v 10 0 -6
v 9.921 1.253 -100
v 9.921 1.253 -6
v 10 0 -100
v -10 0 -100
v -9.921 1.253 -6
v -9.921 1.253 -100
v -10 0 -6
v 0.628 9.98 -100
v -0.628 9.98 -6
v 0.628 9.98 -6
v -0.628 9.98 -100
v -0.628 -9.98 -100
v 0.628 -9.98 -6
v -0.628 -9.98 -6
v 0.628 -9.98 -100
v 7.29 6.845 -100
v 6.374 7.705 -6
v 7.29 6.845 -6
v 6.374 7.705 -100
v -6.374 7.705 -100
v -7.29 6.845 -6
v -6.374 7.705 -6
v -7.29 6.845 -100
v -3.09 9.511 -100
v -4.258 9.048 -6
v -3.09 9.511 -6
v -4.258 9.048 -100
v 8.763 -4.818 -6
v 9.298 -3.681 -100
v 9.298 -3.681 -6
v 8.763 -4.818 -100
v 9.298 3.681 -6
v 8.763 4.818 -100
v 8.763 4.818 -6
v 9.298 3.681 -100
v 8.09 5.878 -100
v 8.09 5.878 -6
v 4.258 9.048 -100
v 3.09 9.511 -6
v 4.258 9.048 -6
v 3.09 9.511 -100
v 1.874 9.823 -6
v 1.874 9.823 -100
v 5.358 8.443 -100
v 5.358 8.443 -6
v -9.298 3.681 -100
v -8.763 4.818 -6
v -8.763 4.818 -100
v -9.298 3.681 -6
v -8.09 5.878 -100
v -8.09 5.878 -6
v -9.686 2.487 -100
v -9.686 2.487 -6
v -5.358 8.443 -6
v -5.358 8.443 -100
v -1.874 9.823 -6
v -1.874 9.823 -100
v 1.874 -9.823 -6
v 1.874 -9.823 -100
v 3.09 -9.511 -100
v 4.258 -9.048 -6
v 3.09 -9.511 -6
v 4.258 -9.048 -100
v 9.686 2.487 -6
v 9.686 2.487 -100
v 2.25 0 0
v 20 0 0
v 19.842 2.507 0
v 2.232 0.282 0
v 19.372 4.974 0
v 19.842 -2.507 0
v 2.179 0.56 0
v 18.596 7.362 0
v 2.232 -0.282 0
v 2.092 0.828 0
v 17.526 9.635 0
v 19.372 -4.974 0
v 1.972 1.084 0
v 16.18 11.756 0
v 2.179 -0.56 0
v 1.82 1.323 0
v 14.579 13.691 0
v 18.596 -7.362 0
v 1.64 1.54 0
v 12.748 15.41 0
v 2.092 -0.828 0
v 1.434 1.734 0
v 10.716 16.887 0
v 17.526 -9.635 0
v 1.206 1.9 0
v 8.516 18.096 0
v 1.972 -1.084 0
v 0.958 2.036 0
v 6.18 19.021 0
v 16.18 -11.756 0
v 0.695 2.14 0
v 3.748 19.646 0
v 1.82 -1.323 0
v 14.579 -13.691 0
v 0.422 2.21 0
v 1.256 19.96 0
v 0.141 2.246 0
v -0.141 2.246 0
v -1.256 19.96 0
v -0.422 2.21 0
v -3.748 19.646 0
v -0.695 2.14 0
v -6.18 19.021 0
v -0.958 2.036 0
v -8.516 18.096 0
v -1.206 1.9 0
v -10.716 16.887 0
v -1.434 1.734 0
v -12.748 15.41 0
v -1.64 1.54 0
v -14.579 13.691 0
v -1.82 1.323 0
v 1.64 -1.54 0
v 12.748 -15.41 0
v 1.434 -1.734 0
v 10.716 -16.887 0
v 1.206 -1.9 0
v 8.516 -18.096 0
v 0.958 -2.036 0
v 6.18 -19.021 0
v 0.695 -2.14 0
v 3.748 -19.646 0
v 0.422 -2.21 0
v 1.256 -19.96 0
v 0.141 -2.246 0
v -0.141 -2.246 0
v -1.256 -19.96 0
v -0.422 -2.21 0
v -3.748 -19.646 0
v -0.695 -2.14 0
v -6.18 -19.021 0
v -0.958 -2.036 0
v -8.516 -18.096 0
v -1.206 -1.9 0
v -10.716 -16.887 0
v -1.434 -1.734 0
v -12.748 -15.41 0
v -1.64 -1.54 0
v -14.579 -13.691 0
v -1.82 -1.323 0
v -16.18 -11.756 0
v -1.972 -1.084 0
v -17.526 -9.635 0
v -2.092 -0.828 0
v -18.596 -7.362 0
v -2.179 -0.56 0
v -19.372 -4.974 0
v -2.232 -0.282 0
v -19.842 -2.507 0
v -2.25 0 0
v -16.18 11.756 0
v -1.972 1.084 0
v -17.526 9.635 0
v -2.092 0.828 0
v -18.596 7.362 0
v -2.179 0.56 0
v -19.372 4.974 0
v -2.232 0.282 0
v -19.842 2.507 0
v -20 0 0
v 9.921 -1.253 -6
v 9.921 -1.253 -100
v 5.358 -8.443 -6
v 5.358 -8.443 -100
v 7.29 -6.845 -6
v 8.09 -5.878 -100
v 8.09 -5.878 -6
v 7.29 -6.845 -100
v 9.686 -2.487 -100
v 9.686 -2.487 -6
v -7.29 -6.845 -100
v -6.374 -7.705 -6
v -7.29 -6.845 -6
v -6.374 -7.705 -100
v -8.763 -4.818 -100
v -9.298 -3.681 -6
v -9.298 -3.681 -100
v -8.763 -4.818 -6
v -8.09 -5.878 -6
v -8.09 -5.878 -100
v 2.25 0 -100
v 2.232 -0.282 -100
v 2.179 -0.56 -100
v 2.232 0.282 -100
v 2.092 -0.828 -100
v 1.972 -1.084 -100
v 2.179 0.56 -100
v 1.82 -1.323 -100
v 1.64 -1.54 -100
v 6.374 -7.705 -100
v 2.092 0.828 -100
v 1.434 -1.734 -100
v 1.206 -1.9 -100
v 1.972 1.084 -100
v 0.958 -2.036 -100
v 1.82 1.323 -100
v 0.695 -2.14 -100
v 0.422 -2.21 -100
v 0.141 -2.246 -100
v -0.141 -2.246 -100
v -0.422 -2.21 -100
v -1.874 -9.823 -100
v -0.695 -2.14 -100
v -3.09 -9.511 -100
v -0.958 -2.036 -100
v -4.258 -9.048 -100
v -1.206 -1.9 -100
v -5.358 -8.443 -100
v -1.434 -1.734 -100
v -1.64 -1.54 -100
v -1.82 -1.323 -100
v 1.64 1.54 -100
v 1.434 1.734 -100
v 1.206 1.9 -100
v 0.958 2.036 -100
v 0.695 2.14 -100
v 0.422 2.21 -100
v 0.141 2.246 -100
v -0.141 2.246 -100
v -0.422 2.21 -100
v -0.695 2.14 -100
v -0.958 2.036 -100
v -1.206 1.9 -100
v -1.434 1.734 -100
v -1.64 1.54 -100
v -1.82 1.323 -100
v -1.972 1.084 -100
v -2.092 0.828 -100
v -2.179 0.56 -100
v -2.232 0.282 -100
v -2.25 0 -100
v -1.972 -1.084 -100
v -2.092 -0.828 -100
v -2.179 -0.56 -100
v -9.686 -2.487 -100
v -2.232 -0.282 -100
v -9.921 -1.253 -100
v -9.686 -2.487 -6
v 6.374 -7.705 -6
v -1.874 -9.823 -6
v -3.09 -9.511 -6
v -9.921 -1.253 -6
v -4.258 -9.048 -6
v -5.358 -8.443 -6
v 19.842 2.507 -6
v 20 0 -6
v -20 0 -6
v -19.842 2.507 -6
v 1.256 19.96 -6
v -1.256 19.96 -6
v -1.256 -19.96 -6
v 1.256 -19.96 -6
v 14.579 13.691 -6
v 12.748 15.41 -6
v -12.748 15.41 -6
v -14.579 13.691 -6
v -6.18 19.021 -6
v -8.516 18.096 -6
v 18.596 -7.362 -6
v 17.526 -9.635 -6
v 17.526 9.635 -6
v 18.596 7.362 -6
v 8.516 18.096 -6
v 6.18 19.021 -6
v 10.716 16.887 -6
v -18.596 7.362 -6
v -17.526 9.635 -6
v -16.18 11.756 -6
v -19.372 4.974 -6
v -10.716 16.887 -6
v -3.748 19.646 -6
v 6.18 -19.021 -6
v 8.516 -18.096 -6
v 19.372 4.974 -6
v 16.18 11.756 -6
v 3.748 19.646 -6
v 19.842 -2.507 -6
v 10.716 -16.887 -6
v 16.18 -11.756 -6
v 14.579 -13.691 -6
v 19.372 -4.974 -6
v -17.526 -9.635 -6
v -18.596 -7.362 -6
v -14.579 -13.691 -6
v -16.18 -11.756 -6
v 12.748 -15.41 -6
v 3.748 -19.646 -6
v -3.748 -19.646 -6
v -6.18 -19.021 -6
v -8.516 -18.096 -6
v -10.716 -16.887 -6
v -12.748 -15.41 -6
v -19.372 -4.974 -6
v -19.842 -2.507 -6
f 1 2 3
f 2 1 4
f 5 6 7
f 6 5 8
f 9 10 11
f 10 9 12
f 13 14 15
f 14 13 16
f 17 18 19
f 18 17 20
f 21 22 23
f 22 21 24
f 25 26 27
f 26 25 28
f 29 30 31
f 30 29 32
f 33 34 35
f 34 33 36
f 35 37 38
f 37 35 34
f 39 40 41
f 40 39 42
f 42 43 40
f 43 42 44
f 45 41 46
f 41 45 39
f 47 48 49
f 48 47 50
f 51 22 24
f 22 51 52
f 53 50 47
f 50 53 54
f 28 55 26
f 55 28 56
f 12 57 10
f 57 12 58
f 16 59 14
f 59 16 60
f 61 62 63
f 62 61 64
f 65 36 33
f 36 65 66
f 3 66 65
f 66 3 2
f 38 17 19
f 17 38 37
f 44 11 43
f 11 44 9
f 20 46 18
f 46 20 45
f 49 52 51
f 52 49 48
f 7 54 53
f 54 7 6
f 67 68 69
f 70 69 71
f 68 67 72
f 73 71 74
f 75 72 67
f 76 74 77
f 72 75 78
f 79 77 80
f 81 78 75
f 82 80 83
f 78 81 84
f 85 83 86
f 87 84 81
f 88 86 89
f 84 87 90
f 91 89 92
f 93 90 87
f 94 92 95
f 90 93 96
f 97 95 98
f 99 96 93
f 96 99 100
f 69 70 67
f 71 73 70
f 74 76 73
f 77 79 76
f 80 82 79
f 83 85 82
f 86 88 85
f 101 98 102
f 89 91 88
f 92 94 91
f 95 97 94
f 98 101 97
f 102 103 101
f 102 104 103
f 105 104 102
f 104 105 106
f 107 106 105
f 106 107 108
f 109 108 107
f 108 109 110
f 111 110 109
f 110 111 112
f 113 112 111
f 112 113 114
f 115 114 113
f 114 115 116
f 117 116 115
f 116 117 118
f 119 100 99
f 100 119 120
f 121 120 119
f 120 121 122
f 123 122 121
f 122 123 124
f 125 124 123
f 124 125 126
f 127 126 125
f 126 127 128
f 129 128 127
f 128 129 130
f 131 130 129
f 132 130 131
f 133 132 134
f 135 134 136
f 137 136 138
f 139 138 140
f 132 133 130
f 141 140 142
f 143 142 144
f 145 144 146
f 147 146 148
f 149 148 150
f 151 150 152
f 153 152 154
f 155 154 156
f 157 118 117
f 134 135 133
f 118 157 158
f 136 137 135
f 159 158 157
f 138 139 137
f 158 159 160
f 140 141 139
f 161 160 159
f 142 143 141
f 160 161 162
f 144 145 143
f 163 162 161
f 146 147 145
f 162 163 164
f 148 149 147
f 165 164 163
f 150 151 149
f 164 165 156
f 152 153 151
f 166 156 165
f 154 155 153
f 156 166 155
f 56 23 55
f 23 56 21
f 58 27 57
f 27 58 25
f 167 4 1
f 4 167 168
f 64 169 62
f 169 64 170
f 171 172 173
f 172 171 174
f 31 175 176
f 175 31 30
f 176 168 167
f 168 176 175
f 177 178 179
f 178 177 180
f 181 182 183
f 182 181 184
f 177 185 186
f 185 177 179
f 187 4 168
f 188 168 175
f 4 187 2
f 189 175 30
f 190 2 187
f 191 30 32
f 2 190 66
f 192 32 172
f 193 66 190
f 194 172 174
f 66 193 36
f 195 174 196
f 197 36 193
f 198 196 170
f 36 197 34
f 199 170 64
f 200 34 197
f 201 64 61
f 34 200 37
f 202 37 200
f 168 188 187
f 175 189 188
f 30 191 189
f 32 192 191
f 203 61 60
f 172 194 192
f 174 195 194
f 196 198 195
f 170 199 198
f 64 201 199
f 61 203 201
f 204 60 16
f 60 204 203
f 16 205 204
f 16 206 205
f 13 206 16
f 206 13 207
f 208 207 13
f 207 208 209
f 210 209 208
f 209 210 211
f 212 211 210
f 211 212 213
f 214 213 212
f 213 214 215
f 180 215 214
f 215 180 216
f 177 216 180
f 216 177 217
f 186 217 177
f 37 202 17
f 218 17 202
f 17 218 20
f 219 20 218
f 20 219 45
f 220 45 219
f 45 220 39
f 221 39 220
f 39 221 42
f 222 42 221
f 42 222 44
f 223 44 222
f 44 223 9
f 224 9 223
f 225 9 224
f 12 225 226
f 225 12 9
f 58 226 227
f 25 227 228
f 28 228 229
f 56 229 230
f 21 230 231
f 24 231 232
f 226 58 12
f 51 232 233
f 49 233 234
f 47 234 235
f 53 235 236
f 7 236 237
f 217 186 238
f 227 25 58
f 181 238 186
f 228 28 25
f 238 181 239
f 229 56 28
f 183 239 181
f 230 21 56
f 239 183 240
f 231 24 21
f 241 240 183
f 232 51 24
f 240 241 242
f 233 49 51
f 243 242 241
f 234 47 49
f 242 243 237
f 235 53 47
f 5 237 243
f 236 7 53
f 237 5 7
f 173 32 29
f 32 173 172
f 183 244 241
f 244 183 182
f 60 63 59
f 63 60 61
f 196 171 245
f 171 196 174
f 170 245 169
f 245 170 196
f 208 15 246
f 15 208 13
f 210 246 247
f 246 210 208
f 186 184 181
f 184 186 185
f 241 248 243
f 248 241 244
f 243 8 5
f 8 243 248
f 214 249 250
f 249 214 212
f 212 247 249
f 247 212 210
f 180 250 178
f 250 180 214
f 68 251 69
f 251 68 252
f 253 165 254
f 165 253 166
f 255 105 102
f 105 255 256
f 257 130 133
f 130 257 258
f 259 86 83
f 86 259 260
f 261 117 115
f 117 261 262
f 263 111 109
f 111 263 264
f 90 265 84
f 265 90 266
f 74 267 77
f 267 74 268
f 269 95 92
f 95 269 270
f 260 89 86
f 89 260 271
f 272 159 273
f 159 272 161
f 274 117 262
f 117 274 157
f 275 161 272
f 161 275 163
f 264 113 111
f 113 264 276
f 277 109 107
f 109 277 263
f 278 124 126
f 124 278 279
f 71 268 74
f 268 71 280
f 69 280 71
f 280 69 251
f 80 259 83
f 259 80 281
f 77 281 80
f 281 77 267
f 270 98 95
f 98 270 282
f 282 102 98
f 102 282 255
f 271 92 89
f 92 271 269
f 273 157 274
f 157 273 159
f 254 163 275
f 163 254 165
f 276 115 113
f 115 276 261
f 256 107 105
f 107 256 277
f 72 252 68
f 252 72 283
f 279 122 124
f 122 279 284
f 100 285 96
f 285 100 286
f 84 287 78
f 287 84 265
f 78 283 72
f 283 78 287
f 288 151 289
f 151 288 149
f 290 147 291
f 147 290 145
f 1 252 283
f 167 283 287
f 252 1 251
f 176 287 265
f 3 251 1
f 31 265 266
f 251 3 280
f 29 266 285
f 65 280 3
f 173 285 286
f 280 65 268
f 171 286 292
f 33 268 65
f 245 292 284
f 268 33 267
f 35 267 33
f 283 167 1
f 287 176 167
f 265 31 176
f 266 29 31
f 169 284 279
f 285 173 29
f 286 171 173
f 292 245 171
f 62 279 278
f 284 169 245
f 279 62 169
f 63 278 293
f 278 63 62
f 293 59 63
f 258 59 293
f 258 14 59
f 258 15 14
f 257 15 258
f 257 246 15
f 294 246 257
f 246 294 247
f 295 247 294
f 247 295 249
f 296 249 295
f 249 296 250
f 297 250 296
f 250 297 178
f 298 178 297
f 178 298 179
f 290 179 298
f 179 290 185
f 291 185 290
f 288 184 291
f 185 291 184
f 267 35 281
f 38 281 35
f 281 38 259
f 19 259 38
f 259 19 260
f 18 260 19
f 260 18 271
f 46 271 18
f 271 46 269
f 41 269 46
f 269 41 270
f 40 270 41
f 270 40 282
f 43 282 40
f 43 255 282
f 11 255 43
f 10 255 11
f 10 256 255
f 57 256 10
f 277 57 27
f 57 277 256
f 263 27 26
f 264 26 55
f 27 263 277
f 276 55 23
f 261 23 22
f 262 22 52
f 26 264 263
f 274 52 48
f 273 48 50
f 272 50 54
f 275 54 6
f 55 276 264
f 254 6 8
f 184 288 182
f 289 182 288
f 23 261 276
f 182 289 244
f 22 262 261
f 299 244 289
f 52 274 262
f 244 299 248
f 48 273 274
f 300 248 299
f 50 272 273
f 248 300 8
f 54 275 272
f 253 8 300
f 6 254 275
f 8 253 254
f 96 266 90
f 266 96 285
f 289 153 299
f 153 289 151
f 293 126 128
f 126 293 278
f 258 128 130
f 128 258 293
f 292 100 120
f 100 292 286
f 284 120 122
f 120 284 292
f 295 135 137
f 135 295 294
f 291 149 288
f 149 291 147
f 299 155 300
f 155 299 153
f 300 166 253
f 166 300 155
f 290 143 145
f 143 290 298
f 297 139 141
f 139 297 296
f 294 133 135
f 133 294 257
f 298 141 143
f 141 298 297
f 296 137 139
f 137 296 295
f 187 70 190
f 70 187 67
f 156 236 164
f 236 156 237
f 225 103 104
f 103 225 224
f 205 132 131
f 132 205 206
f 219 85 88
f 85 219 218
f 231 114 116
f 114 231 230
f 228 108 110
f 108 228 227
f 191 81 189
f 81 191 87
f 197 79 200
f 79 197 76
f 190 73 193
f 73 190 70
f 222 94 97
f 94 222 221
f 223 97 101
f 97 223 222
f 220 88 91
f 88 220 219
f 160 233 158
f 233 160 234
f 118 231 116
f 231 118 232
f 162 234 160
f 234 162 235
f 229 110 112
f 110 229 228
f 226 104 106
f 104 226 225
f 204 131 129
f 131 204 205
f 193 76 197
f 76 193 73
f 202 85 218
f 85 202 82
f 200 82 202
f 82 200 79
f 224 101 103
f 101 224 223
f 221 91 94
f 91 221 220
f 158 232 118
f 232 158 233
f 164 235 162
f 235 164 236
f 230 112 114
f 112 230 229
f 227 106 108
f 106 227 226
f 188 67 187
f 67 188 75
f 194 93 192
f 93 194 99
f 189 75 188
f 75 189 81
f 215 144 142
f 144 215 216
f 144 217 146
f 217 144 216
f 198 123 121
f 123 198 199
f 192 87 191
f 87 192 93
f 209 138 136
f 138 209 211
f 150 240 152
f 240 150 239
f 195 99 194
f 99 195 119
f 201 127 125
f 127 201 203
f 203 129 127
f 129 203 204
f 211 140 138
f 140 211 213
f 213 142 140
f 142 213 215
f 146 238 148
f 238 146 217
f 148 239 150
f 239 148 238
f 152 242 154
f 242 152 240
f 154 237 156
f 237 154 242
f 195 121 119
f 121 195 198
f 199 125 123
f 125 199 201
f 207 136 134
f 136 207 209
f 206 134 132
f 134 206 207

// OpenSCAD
$fn = 50;


difference() {
	union() {
		translate(v = [0, 0, -100.0000000000]) {
			cylinder(h = 100, r = 10.0000000000);
		}
		translate(v = [0, 0, -6.0000000000]) {
			cylinder(h = 6, r = 20.0000000000);
		}
	}
	union() {
		#translate(v = [0, 0, -100]) {
			cylinder(h = 100, r = 2.2500000000);
		}
	}
}
